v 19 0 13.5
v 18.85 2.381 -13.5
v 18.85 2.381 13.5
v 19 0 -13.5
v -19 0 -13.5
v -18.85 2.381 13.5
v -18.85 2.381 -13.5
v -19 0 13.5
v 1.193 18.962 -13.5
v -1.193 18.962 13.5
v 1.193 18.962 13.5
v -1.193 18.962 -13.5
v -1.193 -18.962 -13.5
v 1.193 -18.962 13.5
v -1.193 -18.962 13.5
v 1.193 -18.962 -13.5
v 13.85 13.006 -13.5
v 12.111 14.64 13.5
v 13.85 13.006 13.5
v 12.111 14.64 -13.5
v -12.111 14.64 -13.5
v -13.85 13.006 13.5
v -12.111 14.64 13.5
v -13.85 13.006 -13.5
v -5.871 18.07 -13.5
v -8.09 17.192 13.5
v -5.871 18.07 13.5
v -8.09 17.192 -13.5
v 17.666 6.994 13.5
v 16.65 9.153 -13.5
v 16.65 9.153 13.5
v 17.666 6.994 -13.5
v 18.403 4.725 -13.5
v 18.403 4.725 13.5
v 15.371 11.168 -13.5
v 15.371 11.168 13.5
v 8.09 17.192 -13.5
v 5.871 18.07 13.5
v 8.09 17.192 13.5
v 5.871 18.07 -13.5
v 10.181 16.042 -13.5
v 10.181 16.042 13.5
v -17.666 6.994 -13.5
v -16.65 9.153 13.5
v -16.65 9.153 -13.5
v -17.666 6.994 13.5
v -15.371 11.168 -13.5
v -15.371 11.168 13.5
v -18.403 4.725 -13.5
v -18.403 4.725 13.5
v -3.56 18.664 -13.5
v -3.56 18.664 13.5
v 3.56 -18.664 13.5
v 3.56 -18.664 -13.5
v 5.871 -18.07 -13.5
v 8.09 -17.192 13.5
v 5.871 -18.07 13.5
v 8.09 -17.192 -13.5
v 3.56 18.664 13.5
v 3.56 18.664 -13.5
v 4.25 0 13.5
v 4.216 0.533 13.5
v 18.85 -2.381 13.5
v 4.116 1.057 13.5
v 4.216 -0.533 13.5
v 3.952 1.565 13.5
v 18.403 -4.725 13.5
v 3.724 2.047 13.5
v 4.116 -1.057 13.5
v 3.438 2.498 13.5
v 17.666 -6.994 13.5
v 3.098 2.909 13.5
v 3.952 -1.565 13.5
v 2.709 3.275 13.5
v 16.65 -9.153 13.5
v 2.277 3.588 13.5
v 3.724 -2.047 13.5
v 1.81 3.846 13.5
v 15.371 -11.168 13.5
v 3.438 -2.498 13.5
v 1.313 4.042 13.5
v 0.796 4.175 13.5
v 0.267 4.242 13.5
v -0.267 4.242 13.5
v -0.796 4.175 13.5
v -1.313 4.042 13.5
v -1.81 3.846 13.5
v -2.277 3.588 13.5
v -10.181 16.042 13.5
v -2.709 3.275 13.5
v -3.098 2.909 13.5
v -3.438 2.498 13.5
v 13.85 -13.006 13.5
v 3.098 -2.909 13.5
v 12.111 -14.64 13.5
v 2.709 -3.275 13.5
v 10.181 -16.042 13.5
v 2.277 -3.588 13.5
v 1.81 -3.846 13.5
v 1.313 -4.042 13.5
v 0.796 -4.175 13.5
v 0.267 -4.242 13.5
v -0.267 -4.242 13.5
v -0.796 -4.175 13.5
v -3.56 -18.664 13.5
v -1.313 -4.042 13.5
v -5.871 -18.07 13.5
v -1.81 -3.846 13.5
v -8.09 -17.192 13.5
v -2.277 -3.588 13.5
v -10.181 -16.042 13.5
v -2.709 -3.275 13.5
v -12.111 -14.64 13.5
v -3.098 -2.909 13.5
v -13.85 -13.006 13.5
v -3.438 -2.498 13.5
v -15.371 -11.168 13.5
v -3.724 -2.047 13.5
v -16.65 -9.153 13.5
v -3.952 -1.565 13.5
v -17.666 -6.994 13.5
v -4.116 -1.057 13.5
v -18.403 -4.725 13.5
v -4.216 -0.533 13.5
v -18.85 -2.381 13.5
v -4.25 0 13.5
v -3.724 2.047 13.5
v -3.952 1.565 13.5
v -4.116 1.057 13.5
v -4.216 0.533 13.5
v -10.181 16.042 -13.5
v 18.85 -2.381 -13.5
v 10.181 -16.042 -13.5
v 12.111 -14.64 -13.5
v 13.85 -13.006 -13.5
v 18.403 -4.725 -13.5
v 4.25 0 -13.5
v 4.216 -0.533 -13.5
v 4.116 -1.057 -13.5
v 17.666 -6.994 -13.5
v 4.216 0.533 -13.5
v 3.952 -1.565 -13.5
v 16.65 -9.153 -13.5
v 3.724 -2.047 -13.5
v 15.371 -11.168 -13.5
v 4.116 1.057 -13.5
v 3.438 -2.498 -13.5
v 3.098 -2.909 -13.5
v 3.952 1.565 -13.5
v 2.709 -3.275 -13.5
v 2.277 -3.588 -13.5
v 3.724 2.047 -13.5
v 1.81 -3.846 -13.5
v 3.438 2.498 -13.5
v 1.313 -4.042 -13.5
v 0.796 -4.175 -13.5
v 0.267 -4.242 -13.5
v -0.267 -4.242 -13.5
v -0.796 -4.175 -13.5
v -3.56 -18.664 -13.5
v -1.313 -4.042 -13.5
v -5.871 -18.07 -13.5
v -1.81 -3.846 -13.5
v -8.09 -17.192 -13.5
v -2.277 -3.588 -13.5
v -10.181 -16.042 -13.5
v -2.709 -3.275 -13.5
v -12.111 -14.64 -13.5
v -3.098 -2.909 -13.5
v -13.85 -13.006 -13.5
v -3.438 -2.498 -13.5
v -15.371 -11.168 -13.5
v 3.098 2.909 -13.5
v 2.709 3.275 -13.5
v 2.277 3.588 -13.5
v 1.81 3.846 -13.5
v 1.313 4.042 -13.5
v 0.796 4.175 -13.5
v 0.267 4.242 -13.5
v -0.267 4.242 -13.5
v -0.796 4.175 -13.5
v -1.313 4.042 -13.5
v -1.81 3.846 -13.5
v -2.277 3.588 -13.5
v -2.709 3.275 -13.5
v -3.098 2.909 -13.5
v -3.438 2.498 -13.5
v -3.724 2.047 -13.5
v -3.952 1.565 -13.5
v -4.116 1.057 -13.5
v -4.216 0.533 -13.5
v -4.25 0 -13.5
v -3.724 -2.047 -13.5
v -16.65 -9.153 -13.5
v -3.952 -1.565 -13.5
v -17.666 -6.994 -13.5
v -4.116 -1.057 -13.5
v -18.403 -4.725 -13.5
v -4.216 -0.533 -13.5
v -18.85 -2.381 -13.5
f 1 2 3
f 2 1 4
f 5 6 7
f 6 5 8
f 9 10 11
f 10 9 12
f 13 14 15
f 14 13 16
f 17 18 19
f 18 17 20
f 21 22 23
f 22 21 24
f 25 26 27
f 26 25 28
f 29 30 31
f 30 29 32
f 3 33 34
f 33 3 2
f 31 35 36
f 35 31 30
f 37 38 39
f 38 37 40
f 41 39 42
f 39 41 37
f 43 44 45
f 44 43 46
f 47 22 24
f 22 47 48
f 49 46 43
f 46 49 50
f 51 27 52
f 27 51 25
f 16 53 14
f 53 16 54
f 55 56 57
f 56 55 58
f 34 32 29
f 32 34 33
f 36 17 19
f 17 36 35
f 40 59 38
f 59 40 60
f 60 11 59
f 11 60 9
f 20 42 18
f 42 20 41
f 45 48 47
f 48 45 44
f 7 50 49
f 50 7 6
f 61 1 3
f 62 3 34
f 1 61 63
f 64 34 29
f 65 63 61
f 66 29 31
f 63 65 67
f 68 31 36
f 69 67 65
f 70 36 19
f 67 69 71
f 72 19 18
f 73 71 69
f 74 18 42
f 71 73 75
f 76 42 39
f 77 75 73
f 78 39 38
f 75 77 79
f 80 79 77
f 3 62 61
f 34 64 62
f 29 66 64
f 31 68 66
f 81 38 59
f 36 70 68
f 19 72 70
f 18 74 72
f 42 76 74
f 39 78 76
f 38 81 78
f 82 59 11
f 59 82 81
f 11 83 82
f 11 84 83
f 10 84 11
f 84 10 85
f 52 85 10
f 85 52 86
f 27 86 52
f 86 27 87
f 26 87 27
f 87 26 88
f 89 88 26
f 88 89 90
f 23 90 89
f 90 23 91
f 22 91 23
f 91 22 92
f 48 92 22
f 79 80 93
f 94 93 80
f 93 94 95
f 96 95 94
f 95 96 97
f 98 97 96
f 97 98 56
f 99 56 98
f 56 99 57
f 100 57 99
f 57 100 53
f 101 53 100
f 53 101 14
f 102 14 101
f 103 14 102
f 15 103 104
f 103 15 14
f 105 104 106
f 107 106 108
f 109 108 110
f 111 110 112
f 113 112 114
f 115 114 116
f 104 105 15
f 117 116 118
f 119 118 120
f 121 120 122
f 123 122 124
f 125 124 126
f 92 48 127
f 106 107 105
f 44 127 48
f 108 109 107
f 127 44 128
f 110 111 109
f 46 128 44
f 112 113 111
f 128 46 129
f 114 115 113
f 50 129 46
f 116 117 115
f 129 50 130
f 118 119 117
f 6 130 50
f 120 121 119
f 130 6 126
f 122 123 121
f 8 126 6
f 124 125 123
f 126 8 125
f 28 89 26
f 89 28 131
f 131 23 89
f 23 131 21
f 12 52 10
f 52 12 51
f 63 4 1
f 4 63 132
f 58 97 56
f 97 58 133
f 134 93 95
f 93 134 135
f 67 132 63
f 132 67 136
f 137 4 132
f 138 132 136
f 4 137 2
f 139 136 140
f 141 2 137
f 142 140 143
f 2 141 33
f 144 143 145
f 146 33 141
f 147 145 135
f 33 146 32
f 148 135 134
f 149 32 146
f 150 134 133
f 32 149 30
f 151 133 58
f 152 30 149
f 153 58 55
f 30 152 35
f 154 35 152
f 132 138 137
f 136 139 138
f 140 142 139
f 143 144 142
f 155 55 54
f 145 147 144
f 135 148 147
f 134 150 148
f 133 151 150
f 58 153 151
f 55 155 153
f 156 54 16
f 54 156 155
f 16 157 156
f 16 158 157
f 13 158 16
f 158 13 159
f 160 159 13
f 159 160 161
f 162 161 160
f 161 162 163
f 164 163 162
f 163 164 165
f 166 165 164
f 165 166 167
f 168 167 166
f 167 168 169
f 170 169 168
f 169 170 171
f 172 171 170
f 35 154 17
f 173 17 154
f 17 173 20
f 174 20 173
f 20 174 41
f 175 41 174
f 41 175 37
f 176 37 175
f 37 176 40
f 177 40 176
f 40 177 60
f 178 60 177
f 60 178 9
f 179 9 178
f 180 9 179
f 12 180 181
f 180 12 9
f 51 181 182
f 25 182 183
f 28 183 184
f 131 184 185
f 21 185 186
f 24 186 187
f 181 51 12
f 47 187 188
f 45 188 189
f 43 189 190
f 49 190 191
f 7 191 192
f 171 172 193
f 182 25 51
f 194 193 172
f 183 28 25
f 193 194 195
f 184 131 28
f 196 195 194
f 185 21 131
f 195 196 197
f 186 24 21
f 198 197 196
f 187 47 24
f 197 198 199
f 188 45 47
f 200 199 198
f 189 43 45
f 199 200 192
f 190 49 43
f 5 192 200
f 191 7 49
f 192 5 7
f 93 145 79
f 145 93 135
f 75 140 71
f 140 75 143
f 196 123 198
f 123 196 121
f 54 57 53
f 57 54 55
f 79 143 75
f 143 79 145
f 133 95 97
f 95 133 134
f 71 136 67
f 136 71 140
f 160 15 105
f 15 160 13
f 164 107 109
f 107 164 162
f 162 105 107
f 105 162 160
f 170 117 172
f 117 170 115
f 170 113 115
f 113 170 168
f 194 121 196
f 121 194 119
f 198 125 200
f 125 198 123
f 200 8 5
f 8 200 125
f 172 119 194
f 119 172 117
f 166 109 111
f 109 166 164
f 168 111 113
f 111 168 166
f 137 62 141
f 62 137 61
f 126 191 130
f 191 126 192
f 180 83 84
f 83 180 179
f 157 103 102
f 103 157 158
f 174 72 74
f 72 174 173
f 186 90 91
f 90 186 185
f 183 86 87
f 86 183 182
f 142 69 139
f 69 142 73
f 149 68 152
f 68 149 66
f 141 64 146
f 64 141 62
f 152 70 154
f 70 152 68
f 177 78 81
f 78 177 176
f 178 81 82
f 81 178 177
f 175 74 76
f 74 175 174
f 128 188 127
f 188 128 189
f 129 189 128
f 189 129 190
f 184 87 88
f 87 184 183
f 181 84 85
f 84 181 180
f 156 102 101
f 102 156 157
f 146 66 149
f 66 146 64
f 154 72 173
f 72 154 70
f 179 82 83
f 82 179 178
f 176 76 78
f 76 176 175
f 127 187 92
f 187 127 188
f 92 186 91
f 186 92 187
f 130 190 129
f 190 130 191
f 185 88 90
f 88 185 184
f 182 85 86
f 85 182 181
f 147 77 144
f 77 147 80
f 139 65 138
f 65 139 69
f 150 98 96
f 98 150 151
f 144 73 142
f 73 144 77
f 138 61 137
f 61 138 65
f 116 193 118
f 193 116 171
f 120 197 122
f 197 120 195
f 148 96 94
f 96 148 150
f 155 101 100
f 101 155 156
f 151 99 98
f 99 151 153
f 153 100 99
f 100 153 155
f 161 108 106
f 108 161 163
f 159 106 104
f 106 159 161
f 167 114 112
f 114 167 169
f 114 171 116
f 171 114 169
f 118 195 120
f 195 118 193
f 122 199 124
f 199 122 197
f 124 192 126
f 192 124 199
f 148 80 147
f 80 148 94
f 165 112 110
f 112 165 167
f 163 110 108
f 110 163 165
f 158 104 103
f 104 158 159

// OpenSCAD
$fn = 50;


difference() {
	union() {
		translate(v = [0, 0, -13.5000000000]) {
			cylinder(h = 27, r = 19.0000000000);
		}
	}
	union() {
		translate(v = [0, 0, -100.0000000000]) {
			cylinder(h = 200, r = 4.2500000000);
		}
	}
}
